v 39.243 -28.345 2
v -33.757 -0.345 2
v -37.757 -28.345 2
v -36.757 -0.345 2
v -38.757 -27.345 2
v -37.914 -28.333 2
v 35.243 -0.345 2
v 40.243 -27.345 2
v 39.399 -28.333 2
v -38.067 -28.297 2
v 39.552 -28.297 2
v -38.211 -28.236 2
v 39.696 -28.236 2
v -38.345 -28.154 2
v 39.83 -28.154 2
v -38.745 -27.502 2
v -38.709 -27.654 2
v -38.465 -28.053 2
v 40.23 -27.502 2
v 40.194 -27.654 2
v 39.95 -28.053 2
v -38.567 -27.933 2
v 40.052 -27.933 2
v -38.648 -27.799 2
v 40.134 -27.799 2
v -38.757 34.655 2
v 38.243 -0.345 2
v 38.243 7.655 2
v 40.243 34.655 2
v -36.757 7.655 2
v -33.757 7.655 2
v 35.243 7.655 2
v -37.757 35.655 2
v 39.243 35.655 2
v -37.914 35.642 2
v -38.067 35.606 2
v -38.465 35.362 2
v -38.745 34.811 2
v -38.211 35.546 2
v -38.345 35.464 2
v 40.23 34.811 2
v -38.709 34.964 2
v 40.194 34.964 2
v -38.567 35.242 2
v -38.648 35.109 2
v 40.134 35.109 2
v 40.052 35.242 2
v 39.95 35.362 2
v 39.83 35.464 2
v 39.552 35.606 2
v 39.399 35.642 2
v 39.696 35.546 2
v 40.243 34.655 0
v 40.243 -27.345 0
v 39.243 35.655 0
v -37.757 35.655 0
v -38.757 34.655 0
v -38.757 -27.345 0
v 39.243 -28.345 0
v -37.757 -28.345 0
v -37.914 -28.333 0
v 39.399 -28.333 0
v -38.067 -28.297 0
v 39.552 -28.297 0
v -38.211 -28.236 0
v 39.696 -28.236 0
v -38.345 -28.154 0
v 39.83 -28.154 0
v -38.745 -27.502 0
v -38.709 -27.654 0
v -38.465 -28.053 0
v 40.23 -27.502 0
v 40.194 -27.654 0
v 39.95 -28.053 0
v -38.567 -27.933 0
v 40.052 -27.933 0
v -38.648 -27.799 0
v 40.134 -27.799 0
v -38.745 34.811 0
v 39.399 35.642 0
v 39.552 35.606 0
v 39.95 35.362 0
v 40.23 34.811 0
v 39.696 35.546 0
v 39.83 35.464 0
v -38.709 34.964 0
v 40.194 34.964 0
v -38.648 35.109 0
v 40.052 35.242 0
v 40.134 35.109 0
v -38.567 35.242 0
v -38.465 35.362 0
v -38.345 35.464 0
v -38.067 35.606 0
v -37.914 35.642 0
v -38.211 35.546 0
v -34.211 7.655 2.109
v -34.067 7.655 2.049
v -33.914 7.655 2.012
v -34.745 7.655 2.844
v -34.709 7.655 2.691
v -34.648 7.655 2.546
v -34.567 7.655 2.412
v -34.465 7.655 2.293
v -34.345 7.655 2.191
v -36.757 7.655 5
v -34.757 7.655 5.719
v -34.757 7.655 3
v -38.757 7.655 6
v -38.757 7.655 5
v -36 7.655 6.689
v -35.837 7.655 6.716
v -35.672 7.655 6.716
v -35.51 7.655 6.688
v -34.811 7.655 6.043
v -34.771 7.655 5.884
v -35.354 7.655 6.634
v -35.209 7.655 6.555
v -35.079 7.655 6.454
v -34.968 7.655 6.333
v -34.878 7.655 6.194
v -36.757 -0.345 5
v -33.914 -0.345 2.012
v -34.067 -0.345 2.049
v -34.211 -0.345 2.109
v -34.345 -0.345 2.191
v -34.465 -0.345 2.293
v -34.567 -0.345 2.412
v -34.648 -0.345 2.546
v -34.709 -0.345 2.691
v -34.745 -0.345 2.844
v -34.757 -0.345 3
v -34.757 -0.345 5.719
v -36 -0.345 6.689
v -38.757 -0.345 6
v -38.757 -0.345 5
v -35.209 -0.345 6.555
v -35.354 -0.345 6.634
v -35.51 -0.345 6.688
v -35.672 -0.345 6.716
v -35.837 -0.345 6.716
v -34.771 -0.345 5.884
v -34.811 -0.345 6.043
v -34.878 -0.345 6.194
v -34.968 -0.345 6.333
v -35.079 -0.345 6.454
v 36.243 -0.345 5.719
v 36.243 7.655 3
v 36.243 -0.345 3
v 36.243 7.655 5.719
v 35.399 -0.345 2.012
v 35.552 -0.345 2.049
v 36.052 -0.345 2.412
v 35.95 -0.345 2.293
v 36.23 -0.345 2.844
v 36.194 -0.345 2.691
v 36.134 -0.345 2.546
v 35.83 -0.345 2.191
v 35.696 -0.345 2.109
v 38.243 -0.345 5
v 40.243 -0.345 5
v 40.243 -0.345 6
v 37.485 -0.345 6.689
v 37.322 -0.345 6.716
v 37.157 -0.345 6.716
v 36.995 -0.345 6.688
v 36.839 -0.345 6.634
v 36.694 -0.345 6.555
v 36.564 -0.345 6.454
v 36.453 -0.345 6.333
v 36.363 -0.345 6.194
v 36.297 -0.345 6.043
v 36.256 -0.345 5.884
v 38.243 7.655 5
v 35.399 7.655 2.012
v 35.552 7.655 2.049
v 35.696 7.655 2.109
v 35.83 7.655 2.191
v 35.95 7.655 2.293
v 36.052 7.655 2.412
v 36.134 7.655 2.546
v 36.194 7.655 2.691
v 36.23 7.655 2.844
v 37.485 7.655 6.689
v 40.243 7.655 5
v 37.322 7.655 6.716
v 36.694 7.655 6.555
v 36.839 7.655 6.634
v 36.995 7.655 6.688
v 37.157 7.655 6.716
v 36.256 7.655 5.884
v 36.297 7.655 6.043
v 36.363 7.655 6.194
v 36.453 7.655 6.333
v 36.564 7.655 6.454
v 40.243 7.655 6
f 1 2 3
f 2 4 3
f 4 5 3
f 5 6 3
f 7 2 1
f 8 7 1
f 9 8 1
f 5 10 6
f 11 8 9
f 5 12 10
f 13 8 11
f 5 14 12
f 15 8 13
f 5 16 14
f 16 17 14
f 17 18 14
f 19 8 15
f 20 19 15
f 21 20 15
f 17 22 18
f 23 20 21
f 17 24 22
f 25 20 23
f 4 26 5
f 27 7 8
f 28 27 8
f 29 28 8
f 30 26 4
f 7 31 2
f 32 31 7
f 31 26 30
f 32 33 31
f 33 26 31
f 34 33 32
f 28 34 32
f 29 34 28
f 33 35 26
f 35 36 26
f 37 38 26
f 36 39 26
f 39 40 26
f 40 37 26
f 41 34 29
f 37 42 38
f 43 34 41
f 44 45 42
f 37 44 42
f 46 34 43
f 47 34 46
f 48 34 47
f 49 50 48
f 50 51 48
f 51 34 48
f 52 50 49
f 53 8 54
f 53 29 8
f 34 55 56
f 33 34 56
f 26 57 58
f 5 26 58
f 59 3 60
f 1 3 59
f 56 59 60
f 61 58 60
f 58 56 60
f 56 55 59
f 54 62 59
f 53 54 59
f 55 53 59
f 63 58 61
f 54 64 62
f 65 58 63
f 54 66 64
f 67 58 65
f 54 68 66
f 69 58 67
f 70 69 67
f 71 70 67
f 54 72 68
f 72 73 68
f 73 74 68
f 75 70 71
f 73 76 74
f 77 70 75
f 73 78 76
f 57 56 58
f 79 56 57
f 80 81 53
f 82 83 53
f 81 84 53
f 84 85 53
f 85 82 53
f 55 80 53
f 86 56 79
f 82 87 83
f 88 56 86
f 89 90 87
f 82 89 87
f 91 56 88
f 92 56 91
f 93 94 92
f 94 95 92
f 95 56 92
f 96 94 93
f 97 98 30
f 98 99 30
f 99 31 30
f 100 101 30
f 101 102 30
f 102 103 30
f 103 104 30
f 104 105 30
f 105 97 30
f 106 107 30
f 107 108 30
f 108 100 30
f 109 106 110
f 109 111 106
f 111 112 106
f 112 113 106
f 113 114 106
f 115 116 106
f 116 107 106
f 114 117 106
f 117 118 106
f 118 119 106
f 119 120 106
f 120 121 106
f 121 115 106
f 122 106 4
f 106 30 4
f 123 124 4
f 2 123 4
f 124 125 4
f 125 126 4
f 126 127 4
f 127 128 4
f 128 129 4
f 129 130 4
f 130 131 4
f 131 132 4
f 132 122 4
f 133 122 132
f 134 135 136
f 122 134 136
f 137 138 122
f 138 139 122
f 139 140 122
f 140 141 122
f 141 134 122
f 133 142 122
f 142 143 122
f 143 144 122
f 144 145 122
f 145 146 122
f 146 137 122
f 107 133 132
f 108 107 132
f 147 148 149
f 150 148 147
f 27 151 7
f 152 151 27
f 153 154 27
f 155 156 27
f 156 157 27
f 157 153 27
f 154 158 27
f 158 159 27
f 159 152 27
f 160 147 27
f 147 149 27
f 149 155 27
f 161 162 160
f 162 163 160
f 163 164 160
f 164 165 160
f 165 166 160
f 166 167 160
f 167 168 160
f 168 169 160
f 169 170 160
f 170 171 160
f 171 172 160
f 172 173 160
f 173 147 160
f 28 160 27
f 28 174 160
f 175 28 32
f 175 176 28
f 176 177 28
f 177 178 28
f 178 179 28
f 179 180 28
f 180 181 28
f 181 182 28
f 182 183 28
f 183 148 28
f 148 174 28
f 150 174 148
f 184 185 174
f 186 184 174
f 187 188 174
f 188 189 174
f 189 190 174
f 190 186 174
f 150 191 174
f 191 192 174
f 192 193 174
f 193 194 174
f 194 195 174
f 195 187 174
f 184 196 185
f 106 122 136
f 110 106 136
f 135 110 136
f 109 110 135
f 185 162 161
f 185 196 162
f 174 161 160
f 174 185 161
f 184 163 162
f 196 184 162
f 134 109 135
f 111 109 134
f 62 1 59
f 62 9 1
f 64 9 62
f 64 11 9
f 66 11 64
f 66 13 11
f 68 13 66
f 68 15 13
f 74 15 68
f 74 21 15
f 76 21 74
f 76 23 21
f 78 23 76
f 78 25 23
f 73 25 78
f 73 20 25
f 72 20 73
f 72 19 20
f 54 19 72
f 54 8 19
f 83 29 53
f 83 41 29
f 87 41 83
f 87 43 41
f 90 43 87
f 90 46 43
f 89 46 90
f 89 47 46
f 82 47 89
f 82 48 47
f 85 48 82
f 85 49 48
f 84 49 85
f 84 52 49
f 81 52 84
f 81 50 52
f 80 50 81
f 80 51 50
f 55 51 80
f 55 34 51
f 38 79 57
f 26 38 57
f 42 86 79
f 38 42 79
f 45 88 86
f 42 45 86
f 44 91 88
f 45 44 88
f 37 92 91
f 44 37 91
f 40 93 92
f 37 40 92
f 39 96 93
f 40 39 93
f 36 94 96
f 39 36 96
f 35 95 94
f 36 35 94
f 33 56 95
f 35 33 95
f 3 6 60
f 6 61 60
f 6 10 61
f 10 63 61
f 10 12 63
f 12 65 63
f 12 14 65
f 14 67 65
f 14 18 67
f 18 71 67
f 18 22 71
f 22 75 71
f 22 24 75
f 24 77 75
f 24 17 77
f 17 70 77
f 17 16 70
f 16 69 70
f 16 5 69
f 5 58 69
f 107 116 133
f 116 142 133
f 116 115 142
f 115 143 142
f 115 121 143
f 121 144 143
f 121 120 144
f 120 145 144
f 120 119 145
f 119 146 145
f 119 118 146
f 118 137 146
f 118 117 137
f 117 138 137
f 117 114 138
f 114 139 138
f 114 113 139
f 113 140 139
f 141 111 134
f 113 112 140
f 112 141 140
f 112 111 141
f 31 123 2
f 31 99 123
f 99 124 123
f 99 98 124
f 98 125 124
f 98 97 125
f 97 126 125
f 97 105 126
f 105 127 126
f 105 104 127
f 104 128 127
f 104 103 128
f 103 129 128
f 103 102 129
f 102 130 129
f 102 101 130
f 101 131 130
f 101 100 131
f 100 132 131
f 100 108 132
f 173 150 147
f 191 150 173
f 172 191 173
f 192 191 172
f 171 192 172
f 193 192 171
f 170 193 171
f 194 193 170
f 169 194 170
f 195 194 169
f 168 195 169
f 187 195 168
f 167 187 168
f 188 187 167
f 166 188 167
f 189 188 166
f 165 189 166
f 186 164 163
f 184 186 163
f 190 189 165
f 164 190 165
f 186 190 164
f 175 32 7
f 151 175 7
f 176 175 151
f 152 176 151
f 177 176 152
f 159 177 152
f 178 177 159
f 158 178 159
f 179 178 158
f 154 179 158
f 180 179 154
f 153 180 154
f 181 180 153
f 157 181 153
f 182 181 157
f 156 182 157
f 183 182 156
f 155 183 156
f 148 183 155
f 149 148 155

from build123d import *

# Parameters (mm, degrees)
SKETCH_211_W             = 2
SKETCH_211_H             = 8
EXTRUDE_1442_DEPTH       = 2
EXTRUDE_START            = 2
SKETCH_3_W               = 2
SKETCH_3_H               = 8
EXTRUDE_1490_DEPTH       = 3
EXTRUDE_START_2          = 5
SKETCH_4_W               = 2
SKETCH_4_H               = 8
EXTRUDE_1_DEPTH          = 2
CUT_EXTRUDE_2_DEPTH      = 55.219059495
CUT_EXTRUDE_2_DEPTH_BACK = 55.219059495
FILLET_2370_R            = 1
FILLET_4_R               = 1


with BuildPart() as part:
    # Sketch 211 → Extrude 1442 (new body)
    with BuildSketch(Plane.XY):
        Polygon((-38.75749015, -0.345451713), (-38.75749015, -28.345451713), (40.24250985, -28.345451713), (40.24250985, -0.345451713), (38.24250985, -0.345451713), (38.24250985, -26.345451713), (-36.75749015, -26.345451713), (-36.75749015, -0.345451713), align=None)
        with Locations((-37.75749015, 3.654548287)):
            Rectangle(SKETCH_211_W, SKETCH_211_H)
        Polygon((-38.75749015, 35.654548287), (-38.75749015, 7.654548287), (-36.75749015, 7.654548287), (-36.75749015, 33.654548287), (38.24250985, 33.654548287), (38.24250985, 7.654548287), (40.24250985, 7.654548287), (40.24250985, 35.654548287), align=None)
        with Locations((-35.75749015, 3.654548287)):
            Rectangle(SKETCH_211_W, SKETCH_211_H)
        with Locations((37.24250985, 3.654548287)):
            Rectangle(SKETCH_211_W, SKETCH_211_H)
        with Locations((39.24250985, 3.654548287)):
            Rectangle(SKETCH_211_W, SKETCH_211_H)
        Polygon((-34.75749015, -0.345451713), (-36.75749015, -0.345451713), (-36.75749015, -26.345451713), (38.24250985, -26.345451713), (38.24250985, -0.345451713), (36.24250985, -0.345451713), (36.24250985, 7.654548287), (38.24250985, 7.654548287), (38.24250985, 33.654548287), (-36.75749015, 33.654548287), (-36.75749015, 7.654548287), (-34.75749015, 7.654548287), align=None)
    extrude(amount=EXTRUDE_1442_DEPTH)

    # Sketch 3 → Extrude 1490 (add)
    with BuildSketch(Plane.XY.offset(EXTRUDE_START)):
        with Locations((-35.75749015, 3.654548287)):
            Rectangle(SKETCH_3_W, SKETCH_3_H)
        with Locations((37.24250985, 3.654548287)):
            Rectangle(SKETCH_3_W, SKETCH_3_H)
    extrude(amount=EXTRUDE_1490_DEPTH)

    # 基体<4> → 扣子-1 (add)
    with BuildSketch(Plane.XY.offset(EXTRUDE_START_2)):
        with Locations((-37.75749015, 3.654548287)):
            Rectangle(SKETCH_4_W, SKETCH_4_H)
        with Locations((-35.75749015, 3.654548287)):
            Rectangle(SKETCH_4_W, SKETCH_4_H)
        with Locations((37.24250985, 3.654548287)):
            Rectangle(SKETCH_4_W, SKETCH_4_H)
        with Locations((39.24250985, 3.654548287)):
            Rectangle(SKETCH_4_W, SKETCH_4_H)
    extrude(amount=EXTRUDE_1_DEPTH)

    # Sketch 3 2 → 切除-拉伸2 (cut, two sides: drawn at the far end of the back side and taken through both)
    with BuildSketch(Plane(origin=(0, 0, 0), x_dir=(1, 0, 0), z_dir=(0, 1, 0)).offset(-CUT_EXTRUDE_2_DEPTH_BACK)):
        Polygon((-34.75749015, -7), (-38.75749015, -6), (-38.75749015, -7), align=None)
        Polygon((36.24250985, -7), (40.24250985, -6), (40.24250985, -7), align=None)
    extrude(amount=CUT_EXTRUDE_2_DEPTH + CUT_EXTRUDE_2_DEPTH_BACK, mode=Mode.SUBTRACT)

    # Fillet 2370
    fillet_2370_edges = [part.edges().sort_by_distance(p)[0] for p in [
        (40.24250985, -28.345451713, 1),
        (-38.75749015, -28.345451713, 1),
        (-38.75749015, 35.654548287, 1),
        (40.24250985, 35.654548287, 1),
    ]]
    fillet(fillet_2370_edges, radius=FILLET_2370_R)

    # 圆角4
    fillet_4_edges = [part.edges().sort_by_distance(p)[0] for p in [
        (-34.75749015, 3.654548287, 2),
        (36.24250985, 3.654548287, 2),
        (-34.75749015, 3.654548287, 7),
        (36.24250985, 3.654548287, 7),
    ]]
    fillet(fillet_4_edges, radius=FILLET_4_R)


solid = part.part
